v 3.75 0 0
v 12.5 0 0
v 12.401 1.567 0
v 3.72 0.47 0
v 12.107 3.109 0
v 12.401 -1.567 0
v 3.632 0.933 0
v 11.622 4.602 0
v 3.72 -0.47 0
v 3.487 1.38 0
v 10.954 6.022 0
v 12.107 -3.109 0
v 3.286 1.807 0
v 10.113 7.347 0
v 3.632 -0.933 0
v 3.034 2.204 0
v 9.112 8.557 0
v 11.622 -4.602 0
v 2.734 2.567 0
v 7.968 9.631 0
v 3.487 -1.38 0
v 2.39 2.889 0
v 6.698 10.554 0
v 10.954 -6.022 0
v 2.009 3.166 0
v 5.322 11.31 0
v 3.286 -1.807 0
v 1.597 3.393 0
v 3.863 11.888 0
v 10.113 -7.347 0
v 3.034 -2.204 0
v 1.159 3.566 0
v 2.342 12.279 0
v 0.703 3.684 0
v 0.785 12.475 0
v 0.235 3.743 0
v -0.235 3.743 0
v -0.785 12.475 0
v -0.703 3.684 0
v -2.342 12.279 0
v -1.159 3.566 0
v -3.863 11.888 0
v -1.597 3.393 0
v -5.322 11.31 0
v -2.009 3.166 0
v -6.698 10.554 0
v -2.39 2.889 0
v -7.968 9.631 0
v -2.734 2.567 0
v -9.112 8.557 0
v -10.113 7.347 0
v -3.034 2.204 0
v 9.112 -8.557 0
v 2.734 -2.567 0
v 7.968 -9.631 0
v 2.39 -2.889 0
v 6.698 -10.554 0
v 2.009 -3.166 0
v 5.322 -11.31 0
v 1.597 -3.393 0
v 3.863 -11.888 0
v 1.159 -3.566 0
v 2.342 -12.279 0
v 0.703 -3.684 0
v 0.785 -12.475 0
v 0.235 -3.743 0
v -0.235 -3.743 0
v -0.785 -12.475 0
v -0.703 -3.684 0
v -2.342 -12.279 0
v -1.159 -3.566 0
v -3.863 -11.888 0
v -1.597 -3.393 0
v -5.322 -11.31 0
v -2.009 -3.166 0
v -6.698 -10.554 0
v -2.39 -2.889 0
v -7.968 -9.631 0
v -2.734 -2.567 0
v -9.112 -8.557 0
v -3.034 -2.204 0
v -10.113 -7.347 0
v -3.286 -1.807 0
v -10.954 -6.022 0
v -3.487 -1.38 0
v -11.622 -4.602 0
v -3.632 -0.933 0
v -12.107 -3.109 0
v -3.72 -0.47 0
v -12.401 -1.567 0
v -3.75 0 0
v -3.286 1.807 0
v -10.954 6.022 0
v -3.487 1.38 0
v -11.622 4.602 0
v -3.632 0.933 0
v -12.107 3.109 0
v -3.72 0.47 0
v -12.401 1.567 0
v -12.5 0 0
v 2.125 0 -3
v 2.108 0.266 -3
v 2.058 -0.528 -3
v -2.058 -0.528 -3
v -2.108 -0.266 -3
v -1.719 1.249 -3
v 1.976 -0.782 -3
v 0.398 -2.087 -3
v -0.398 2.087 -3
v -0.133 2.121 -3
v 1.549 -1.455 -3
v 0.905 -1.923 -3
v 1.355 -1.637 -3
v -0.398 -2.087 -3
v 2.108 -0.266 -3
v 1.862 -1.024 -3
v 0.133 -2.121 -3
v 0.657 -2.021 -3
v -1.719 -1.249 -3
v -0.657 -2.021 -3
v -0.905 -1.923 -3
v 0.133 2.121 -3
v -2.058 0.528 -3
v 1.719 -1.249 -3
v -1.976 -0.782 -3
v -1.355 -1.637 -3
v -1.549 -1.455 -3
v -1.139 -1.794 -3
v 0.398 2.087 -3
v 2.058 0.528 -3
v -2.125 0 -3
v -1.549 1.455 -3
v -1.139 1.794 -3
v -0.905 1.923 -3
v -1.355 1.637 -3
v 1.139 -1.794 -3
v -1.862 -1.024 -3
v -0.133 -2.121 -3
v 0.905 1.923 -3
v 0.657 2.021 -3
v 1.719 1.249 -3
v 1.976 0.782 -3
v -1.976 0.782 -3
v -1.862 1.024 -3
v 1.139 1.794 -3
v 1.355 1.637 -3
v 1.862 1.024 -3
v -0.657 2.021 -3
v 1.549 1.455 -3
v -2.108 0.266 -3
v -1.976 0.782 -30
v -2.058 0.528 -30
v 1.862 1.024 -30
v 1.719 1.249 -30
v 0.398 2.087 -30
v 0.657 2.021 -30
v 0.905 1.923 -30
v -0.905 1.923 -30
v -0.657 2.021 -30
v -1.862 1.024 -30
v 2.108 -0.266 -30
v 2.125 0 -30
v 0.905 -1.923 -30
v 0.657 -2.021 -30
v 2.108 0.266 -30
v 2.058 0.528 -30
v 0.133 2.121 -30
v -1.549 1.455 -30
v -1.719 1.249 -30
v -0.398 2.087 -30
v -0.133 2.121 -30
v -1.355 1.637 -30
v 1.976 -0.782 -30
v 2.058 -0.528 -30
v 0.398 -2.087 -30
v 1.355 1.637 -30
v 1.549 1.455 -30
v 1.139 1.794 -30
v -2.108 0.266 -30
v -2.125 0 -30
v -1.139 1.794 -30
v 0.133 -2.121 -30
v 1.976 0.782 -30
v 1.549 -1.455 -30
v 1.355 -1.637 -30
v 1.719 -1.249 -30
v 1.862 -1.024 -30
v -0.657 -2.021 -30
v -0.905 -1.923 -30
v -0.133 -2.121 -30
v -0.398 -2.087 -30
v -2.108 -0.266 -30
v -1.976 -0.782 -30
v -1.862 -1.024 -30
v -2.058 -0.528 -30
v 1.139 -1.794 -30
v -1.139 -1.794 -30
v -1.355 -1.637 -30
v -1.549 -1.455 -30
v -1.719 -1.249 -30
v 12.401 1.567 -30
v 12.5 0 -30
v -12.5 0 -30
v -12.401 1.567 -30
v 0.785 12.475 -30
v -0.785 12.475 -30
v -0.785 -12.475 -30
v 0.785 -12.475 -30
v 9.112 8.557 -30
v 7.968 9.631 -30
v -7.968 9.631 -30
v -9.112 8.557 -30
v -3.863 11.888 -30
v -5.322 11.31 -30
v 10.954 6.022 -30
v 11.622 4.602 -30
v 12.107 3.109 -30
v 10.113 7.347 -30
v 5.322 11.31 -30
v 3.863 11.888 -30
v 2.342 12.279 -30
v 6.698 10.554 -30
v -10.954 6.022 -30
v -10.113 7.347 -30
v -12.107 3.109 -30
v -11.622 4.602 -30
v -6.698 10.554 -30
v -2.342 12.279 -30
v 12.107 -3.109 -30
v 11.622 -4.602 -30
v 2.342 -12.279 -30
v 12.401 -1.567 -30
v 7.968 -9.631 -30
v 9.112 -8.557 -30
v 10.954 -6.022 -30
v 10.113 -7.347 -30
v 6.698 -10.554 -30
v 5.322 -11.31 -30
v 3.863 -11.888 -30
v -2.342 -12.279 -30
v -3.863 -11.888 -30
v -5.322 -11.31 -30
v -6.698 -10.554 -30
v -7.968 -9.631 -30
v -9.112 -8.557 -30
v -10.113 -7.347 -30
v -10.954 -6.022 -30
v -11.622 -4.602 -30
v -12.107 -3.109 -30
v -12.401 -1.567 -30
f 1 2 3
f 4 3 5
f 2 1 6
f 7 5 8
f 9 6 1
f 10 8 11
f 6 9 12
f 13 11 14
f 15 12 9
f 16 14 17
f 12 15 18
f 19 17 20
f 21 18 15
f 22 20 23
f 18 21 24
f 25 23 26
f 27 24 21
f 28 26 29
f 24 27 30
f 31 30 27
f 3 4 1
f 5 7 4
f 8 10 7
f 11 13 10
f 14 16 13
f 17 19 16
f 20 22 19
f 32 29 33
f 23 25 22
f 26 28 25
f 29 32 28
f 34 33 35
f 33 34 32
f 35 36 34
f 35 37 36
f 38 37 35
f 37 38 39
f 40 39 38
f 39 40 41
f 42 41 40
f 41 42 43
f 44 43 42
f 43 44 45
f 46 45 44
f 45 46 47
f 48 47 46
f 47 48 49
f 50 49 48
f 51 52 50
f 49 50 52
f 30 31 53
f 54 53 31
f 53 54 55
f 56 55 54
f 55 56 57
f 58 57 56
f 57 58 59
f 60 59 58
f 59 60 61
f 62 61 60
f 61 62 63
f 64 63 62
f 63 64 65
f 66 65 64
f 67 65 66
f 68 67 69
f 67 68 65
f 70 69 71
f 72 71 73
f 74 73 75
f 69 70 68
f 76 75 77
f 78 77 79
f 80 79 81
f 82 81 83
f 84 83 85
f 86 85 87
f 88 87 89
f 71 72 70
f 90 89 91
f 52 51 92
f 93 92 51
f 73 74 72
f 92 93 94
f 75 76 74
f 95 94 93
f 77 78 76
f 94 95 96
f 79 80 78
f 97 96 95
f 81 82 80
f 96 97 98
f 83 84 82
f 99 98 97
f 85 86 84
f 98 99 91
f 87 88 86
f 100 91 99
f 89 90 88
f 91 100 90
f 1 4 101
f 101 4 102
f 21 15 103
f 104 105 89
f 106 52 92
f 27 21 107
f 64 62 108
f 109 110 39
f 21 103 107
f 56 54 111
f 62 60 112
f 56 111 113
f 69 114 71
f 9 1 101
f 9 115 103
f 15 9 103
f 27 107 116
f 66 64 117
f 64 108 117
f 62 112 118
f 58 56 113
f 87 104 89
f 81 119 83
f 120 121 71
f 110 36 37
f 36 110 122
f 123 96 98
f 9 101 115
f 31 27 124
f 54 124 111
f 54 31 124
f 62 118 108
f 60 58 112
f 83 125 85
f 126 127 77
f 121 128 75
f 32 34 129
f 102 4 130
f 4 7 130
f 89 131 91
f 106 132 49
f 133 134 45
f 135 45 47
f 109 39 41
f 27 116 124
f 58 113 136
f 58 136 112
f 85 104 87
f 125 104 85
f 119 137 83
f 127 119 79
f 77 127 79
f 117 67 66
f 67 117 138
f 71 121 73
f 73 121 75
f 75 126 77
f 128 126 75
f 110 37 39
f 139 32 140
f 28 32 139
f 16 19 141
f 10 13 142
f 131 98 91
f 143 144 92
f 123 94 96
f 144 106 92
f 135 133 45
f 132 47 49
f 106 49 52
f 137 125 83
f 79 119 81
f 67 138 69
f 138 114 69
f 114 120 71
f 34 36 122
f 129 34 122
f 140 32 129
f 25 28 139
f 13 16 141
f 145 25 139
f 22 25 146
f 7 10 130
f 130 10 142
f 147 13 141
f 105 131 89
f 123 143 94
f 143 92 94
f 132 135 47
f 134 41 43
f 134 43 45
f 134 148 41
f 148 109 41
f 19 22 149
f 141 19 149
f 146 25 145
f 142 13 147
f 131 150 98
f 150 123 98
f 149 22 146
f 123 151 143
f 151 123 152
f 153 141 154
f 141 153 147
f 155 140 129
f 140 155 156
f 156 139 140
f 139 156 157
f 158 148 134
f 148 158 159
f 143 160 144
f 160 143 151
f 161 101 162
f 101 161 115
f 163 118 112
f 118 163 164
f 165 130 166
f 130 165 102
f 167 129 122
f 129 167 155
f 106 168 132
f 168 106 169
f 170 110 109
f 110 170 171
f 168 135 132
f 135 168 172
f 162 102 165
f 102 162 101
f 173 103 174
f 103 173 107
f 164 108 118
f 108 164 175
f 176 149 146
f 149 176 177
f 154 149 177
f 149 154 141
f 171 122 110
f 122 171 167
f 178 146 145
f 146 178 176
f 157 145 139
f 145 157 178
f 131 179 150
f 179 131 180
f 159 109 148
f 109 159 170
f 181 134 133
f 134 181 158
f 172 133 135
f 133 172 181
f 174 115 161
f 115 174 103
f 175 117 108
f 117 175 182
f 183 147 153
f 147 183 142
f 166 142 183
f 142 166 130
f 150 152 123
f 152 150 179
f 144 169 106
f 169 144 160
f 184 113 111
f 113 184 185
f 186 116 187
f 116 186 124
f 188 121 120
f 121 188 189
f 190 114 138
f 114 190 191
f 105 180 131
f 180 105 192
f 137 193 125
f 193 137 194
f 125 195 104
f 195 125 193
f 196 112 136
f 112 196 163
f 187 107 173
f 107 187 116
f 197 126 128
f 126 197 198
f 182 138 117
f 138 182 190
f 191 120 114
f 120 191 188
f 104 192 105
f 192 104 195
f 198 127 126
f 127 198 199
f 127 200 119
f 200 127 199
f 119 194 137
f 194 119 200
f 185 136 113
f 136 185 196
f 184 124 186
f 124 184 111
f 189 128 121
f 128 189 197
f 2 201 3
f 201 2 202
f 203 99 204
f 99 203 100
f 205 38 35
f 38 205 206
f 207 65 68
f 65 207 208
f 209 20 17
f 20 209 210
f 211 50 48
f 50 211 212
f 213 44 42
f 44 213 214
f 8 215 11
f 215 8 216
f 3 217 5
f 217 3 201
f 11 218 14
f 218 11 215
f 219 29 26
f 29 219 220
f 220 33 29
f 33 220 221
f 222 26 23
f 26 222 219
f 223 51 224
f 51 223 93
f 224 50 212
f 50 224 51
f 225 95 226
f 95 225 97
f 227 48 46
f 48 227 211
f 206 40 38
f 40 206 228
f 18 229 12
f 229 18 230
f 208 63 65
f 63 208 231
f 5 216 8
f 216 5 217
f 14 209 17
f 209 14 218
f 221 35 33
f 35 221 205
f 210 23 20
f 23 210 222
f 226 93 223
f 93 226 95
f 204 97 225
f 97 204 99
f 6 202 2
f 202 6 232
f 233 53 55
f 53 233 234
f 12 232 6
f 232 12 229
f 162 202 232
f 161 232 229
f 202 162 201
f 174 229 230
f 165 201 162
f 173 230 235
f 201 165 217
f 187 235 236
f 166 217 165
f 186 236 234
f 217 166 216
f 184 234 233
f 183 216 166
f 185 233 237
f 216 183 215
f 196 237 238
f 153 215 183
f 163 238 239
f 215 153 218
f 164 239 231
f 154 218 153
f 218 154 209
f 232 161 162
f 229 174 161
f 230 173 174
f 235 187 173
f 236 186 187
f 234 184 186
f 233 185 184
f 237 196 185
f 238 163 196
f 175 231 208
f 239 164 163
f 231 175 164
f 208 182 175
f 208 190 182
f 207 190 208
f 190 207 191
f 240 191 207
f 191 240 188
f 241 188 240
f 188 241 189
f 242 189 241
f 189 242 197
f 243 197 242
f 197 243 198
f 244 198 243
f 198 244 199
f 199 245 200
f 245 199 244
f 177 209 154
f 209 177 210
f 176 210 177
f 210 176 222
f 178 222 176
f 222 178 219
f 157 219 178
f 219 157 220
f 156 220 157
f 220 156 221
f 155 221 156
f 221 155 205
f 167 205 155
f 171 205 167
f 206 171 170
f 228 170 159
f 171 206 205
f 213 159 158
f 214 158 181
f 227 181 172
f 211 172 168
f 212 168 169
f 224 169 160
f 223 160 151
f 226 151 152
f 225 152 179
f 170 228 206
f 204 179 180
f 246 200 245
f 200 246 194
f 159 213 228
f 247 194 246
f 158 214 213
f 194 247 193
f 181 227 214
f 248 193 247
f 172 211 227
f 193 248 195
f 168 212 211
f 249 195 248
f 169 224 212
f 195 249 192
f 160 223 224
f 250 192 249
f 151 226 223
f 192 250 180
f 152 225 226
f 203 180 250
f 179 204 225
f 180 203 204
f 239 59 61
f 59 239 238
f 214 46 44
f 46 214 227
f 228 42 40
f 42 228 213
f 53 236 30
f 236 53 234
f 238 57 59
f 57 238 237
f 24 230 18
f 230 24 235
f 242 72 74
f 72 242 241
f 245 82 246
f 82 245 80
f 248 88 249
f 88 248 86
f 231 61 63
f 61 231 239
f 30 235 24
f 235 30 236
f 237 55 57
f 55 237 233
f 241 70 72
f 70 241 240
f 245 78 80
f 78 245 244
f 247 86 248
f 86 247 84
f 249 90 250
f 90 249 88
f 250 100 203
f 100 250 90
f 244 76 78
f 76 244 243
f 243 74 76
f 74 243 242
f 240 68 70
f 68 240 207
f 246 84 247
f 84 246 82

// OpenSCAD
$fn = 50;

difference() {
	union() {
		translate(v = [0, 0, -30.0]) {
			cylinder(h = 30, r = 12.5);
		}
	}
	union() {
		translate(v = [0, 0, 0]) {
			rotate(a = [0, 0, 0]) {
				difference() {
					union() {
						translate(v = [0, 0, -33.0]) {
							cylinder(h = 33, r = 2.0);
						}
						translate(v = [0, 0, -3]) {
							cylinder(h = 3, r1 = 2.125, r2 = 3.75);
						}
						translate(v = [0, 0, -33.0]) {
							cylinder(h = 33, r = 2.125);
						}
						translate(v = [0, 0, -33.0]) {
							cylinder(h = 33, r = 2.0);
						}
					}
					union();
				}
			}
		}
	}
}
